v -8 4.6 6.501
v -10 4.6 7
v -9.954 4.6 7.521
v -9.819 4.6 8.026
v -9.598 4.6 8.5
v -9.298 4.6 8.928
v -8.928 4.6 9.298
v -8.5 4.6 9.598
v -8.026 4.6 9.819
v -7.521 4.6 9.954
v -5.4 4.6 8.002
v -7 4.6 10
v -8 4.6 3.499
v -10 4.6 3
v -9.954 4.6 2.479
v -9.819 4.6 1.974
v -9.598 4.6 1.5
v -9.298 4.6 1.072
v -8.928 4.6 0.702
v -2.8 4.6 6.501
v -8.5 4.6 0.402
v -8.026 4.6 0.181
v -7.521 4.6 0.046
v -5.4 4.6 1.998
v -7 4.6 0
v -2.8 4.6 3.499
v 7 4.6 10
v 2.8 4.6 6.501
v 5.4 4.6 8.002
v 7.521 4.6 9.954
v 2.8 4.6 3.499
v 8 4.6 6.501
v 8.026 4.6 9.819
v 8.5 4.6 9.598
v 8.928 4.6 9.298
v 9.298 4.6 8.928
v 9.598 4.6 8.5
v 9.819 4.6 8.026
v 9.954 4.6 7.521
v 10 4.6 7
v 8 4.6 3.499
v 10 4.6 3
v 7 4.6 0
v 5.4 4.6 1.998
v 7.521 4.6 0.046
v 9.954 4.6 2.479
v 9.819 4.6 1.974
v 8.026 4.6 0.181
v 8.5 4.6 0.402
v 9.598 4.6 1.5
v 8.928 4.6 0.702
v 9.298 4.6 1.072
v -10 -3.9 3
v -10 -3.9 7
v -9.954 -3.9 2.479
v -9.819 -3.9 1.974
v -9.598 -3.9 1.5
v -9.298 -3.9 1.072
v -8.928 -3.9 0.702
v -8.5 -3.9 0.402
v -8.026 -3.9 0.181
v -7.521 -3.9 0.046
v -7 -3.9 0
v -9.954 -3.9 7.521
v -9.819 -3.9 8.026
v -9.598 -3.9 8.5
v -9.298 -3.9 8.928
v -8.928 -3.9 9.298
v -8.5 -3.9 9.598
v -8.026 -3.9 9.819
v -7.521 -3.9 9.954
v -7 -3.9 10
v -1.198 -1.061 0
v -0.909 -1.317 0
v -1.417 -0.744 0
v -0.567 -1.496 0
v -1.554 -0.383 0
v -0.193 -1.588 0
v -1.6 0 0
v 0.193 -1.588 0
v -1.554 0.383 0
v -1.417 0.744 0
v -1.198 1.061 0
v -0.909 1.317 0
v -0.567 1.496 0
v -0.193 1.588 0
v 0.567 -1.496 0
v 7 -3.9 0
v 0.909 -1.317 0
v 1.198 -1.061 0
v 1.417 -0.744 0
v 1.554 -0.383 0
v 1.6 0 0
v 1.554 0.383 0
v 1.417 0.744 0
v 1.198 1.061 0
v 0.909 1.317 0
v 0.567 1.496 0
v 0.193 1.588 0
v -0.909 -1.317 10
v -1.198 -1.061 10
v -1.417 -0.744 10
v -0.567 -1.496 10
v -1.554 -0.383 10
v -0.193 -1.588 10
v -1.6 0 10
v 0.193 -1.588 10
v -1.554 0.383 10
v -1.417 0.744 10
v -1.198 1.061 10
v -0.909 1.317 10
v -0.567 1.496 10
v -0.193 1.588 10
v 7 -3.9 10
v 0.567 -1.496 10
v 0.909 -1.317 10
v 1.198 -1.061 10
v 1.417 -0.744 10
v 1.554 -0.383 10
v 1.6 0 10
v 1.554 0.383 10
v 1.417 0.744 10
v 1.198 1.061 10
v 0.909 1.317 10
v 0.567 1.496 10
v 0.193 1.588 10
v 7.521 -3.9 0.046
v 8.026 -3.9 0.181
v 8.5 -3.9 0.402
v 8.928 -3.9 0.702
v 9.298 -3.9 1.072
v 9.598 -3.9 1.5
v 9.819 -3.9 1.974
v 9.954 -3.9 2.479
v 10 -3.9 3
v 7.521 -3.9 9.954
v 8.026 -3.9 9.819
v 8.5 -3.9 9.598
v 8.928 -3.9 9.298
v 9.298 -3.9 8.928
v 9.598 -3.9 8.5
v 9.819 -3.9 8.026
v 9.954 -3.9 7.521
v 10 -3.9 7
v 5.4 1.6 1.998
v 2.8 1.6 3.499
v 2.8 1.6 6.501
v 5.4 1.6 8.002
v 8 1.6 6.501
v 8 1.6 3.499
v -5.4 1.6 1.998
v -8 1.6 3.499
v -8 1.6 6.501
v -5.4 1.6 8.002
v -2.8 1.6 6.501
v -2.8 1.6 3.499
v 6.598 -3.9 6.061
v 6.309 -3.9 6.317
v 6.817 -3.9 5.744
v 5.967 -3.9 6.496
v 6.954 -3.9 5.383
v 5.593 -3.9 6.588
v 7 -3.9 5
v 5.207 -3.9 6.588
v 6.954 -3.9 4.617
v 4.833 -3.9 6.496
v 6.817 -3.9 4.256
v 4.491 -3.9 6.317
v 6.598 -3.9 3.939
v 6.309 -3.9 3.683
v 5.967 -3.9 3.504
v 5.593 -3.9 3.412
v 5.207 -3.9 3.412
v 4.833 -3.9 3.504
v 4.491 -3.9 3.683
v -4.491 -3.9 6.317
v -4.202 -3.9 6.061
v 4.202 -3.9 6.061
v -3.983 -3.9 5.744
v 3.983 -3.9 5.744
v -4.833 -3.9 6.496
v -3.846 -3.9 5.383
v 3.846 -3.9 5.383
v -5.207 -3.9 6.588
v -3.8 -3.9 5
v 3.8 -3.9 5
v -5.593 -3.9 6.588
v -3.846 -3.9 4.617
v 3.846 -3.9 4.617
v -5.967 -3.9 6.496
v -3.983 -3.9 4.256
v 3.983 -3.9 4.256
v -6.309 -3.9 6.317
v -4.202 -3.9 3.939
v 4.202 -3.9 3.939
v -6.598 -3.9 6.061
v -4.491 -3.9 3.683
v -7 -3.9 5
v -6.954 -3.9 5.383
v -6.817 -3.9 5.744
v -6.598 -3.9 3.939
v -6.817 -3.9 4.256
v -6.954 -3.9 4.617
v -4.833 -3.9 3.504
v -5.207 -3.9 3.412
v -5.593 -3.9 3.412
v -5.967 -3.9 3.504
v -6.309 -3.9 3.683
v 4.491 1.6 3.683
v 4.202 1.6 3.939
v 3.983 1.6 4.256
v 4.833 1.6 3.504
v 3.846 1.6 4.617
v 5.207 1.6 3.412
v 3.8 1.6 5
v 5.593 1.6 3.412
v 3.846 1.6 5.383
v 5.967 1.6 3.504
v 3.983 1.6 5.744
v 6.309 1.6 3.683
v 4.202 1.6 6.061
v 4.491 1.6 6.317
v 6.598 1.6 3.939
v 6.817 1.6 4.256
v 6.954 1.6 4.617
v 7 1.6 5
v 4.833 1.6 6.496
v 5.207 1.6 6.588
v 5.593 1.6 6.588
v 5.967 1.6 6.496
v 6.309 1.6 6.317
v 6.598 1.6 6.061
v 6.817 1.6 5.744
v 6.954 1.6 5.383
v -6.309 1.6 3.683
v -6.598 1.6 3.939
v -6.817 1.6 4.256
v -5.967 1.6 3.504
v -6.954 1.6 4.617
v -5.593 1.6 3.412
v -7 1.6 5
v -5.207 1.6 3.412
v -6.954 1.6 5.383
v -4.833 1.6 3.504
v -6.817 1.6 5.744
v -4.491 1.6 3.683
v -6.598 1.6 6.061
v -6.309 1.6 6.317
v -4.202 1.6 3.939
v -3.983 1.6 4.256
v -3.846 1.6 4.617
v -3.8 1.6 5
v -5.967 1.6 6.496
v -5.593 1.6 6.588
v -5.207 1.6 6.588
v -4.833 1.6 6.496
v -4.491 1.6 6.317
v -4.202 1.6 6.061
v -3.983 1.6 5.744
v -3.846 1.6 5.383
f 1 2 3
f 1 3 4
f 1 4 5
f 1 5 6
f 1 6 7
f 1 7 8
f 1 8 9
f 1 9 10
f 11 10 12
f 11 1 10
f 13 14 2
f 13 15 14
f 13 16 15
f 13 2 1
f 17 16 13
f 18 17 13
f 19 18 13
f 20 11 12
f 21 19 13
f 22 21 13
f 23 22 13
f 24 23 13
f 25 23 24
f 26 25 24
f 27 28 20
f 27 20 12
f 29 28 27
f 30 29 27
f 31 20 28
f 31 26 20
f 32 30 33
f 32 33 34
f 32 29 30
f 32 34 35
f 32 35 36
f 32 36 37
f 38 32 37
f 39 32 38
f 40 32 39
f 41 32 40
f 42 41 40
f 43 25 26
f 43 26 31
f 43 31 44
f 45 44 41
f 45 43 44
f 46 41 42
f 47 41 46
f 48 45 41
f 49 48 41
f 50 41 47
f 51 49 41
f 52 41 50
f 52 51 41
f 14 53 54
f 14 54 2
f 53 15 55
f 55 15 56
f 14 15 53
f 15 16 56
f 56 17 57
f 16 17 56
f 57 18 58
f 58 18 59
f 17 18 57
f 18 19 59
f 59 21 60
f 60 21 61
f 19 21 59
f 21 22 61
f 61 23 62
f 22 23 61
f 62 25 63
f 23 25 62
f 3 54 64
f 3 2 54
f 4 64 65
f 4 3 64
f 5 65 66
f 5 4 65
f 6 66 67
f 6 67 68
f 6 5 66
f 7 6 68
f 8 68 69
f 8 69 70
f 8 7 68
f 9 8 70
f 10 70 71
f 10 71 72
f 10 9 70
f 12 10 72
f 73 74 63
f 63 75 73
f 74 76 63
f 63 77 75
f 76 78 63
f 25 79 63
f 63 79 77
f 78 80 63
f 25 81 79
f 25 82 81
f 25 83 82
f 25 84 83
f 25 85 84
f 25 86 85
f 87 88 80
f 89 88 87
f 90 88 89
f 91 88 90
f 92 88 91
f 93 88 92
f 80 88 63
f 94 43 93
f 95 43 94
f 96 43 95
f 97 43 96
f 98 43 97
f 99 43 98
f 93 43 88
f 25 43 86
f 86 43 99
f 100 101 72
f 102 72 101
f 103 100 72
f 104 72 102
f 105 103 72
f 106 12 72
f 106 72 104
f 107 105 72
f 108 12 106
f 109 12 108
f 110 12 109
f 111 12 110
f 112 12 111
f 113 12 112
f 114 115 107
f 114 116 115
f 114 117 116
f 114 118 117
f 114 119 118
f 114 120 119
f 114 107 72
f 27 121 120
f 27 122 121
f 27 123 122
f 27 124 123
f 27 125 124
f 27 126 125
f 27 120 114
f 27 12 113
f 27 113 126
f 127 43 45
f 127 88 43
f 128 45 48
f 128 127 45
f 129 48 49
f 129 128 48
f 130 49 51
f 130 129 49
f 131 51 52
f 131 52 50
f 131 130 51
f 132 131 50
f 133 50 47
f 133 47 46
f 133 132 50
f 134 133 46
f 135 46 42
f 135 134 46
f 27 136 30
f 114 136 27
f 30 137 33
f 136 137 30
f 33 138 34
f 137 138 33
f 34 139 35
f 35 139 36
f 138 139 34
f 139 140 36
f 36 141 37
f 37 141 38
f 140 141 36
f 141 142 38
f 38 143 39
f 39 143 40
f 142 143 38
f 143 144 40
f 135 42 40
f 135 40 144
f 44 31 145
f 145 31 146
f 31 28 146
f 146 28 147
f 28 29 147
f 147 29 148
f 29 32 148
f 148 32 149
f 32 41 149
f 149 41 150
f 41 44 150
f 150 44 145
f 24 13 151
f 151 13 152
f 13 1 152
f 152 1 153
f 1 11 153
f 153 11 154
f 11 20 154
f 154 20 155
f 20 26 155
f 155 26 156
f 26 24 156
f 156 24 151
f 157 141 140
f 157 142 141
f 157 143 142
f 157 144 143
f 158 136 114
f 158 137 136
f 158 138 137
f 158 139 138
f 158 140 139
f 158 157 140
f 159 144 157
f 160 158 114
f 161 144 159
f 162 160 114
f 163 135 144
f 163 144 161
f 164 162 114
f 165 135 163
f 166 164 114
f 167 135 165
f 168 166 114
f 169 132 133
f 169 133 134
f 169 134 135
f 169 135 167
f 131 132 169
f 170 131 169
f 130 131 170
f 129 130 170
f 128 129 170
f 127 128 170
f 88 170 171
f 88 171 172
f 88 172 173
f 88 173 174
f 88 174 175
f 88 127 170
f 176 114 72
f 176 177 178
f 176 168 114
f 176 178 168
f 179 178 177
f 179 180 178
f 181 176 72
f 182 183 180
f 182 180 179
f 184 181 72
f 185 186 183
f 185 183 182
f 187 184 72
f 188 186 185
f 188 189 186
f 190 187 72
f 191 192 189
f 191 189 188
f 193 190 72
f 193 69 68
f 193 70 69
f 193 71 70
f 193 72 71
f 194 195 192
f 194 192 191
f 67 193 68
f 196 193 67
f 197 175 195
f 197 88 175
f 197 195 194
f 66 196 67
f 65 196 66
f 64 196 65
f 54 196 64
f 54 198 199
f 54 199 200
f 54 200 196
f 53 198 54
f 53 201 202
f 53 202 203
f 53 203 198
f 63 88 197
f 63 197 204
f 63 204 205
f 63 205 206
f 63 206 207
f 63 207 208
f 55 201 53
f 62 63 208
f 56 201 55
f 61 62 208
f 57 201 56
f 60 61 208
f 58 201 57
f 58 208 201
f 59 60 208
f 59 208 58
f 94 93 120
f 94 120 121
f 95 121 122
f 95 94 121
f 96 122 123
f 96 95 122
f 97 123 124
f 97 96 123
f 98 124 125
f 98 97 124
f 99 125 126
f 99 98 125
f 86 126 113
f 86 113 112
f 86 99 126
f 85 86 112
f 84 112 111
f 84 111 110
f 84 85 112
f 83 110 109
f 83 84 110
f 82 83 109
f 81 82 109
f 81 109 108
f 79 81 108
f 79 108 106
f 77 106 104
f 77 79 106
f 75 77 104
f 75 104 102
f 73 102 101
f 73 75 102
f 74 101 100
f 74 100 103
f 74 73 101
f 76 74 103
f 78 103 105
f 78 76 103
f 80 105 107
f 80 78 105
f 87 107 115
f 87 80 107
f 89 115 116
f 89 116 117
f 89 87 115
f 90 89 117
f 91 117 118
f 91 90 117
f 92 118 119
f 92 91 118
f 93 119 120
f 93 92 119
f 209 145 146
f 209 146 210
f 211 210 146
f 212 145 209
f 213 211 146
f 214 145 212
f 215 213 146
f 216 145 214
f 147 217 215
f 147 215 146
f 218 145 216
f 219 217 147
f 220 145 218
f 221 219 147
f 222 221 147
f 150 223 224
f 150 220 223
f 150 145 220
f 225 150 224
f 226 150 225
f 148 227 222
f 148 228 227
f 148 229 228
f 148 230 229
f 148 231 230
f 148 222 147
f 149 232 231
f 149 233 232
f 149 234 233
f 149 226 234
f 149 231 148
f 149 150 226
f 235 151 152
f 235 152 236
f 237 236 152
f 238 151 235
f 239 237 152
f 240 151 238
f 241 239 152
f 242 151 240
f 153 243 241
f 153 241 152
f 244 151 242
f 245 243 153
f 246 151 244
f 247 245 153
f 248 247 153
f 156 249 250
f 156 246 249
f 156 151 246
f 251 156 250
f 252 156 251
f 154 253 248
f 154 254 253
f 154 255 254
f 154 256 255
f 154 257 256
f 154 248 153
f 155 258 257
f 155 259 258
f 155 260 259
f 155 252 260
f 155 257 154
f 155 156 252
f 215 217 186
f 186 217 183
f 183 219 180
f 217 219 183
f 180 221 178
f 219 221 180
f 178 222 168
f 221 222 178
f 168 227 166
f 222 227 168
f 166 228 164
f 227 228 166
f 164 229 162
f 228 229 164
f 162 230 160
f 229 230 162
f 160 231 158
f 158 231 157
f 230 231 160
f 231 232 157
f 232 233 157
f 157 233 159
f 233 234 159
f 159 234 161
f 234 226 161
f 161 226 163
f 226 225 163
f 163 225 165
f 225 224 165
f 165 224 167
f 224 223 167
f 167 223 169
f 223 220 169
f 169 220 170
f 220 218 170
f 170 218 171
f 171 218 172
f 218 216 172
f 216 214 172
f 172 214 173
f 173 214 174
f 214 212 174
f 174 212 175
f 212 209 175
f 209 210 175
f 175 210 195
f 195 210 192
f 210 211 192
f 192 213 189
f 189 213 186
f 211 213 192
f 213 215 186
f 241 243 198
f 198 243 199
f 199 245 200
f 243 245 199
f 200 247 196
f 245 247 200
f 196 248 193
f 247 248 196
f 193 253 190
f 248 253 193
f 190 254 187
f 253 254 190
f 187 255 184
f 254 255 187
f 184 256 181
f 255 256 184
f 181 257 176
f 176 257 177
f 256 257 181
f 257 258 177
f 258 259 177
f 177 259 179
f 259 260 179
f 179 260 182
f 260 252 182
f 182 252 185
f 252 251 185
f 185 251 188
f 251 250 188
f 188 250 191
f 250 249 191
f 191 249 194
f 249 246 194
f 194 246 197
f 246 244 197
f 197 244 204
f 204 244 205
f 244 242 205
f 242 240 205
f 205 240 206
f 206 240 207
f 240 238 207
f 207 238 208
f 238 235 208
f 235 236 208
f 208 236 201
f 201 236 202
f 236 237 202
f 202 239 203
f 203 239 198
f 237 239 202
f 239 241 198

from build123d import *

# Parameters (mm, degrees)
SKETCH_W        = 20
SKETCH_H        = 8.5
SKETCH_R        = 1.6
PAD_DEPTH       = 10
POCKET_DEPTH    = 3
SKETCH002_R     = 1.6
POCKET001_DEPTH = 5.501
FILLET_R        = 3


with BuildPart() as part:
    # Sketch → Pad (new body)
    with BuildSketch(Plane.XY):
        with Locations((0, 0.35)):
            Rectangle(SKETCH_W, SKETCH_H)
        Circle(SKETCH_R, mode=Mode.SUBTRACT)
    extrude(amount=PAD_DEPTH)

    # Sketch001 (on Face1 of Pad) → Pocket (cut)
    with BuildSketch(Plane(origin=(0, 4.6, 0), x_dir=(-1, 0, 0), z_dir=(0, 1, 0))):
        Polygon((-5.4, 1.997779), (-2.8, 3.498889), (-2.8, 6.501111), (-5.4, 8.002221), (-8, 6.501111), (-8, 3.498889), align=None)
        Polygon((5.4, 1.997779), (8, 3.498889), (8, 6.501111), (5.4, 8.002221), (2.8, 6.501111), (2.8, 3.498889), align=None)
    extrude(amount=-POCKET_DEPTH, mode=Mode.SUBTRACT)

    # Sketch002 (on Face20 of Pocket) → Pocket001 (cut, through all)
    with BuildSketch(Plane(origin=(0, 1.6, 0), x_dir=(-1, 0, 0), z_dir=(0, 1, 0))):
        with Locations((-5.4, 5)):
            Circle(SKETCH002_R)
        with Locations((5.4, 5)):
            Circle(SKETCH002_R)
    extrude(amount=-POCKET001_DEPTH, mode=Mode.SUBTRACT)

    # Fillet
    fillet_edges = [part.edges().sort_by_distance(p)[0] for p in [
        (10, 0.35, 0),
        (10, 0.35, 10),
        (-10, 0.35, 0),
        (-10, 0.35, 10),
    ]]
    fillet(fillet_edges, radius=FILLET_R)


solid = part.part
